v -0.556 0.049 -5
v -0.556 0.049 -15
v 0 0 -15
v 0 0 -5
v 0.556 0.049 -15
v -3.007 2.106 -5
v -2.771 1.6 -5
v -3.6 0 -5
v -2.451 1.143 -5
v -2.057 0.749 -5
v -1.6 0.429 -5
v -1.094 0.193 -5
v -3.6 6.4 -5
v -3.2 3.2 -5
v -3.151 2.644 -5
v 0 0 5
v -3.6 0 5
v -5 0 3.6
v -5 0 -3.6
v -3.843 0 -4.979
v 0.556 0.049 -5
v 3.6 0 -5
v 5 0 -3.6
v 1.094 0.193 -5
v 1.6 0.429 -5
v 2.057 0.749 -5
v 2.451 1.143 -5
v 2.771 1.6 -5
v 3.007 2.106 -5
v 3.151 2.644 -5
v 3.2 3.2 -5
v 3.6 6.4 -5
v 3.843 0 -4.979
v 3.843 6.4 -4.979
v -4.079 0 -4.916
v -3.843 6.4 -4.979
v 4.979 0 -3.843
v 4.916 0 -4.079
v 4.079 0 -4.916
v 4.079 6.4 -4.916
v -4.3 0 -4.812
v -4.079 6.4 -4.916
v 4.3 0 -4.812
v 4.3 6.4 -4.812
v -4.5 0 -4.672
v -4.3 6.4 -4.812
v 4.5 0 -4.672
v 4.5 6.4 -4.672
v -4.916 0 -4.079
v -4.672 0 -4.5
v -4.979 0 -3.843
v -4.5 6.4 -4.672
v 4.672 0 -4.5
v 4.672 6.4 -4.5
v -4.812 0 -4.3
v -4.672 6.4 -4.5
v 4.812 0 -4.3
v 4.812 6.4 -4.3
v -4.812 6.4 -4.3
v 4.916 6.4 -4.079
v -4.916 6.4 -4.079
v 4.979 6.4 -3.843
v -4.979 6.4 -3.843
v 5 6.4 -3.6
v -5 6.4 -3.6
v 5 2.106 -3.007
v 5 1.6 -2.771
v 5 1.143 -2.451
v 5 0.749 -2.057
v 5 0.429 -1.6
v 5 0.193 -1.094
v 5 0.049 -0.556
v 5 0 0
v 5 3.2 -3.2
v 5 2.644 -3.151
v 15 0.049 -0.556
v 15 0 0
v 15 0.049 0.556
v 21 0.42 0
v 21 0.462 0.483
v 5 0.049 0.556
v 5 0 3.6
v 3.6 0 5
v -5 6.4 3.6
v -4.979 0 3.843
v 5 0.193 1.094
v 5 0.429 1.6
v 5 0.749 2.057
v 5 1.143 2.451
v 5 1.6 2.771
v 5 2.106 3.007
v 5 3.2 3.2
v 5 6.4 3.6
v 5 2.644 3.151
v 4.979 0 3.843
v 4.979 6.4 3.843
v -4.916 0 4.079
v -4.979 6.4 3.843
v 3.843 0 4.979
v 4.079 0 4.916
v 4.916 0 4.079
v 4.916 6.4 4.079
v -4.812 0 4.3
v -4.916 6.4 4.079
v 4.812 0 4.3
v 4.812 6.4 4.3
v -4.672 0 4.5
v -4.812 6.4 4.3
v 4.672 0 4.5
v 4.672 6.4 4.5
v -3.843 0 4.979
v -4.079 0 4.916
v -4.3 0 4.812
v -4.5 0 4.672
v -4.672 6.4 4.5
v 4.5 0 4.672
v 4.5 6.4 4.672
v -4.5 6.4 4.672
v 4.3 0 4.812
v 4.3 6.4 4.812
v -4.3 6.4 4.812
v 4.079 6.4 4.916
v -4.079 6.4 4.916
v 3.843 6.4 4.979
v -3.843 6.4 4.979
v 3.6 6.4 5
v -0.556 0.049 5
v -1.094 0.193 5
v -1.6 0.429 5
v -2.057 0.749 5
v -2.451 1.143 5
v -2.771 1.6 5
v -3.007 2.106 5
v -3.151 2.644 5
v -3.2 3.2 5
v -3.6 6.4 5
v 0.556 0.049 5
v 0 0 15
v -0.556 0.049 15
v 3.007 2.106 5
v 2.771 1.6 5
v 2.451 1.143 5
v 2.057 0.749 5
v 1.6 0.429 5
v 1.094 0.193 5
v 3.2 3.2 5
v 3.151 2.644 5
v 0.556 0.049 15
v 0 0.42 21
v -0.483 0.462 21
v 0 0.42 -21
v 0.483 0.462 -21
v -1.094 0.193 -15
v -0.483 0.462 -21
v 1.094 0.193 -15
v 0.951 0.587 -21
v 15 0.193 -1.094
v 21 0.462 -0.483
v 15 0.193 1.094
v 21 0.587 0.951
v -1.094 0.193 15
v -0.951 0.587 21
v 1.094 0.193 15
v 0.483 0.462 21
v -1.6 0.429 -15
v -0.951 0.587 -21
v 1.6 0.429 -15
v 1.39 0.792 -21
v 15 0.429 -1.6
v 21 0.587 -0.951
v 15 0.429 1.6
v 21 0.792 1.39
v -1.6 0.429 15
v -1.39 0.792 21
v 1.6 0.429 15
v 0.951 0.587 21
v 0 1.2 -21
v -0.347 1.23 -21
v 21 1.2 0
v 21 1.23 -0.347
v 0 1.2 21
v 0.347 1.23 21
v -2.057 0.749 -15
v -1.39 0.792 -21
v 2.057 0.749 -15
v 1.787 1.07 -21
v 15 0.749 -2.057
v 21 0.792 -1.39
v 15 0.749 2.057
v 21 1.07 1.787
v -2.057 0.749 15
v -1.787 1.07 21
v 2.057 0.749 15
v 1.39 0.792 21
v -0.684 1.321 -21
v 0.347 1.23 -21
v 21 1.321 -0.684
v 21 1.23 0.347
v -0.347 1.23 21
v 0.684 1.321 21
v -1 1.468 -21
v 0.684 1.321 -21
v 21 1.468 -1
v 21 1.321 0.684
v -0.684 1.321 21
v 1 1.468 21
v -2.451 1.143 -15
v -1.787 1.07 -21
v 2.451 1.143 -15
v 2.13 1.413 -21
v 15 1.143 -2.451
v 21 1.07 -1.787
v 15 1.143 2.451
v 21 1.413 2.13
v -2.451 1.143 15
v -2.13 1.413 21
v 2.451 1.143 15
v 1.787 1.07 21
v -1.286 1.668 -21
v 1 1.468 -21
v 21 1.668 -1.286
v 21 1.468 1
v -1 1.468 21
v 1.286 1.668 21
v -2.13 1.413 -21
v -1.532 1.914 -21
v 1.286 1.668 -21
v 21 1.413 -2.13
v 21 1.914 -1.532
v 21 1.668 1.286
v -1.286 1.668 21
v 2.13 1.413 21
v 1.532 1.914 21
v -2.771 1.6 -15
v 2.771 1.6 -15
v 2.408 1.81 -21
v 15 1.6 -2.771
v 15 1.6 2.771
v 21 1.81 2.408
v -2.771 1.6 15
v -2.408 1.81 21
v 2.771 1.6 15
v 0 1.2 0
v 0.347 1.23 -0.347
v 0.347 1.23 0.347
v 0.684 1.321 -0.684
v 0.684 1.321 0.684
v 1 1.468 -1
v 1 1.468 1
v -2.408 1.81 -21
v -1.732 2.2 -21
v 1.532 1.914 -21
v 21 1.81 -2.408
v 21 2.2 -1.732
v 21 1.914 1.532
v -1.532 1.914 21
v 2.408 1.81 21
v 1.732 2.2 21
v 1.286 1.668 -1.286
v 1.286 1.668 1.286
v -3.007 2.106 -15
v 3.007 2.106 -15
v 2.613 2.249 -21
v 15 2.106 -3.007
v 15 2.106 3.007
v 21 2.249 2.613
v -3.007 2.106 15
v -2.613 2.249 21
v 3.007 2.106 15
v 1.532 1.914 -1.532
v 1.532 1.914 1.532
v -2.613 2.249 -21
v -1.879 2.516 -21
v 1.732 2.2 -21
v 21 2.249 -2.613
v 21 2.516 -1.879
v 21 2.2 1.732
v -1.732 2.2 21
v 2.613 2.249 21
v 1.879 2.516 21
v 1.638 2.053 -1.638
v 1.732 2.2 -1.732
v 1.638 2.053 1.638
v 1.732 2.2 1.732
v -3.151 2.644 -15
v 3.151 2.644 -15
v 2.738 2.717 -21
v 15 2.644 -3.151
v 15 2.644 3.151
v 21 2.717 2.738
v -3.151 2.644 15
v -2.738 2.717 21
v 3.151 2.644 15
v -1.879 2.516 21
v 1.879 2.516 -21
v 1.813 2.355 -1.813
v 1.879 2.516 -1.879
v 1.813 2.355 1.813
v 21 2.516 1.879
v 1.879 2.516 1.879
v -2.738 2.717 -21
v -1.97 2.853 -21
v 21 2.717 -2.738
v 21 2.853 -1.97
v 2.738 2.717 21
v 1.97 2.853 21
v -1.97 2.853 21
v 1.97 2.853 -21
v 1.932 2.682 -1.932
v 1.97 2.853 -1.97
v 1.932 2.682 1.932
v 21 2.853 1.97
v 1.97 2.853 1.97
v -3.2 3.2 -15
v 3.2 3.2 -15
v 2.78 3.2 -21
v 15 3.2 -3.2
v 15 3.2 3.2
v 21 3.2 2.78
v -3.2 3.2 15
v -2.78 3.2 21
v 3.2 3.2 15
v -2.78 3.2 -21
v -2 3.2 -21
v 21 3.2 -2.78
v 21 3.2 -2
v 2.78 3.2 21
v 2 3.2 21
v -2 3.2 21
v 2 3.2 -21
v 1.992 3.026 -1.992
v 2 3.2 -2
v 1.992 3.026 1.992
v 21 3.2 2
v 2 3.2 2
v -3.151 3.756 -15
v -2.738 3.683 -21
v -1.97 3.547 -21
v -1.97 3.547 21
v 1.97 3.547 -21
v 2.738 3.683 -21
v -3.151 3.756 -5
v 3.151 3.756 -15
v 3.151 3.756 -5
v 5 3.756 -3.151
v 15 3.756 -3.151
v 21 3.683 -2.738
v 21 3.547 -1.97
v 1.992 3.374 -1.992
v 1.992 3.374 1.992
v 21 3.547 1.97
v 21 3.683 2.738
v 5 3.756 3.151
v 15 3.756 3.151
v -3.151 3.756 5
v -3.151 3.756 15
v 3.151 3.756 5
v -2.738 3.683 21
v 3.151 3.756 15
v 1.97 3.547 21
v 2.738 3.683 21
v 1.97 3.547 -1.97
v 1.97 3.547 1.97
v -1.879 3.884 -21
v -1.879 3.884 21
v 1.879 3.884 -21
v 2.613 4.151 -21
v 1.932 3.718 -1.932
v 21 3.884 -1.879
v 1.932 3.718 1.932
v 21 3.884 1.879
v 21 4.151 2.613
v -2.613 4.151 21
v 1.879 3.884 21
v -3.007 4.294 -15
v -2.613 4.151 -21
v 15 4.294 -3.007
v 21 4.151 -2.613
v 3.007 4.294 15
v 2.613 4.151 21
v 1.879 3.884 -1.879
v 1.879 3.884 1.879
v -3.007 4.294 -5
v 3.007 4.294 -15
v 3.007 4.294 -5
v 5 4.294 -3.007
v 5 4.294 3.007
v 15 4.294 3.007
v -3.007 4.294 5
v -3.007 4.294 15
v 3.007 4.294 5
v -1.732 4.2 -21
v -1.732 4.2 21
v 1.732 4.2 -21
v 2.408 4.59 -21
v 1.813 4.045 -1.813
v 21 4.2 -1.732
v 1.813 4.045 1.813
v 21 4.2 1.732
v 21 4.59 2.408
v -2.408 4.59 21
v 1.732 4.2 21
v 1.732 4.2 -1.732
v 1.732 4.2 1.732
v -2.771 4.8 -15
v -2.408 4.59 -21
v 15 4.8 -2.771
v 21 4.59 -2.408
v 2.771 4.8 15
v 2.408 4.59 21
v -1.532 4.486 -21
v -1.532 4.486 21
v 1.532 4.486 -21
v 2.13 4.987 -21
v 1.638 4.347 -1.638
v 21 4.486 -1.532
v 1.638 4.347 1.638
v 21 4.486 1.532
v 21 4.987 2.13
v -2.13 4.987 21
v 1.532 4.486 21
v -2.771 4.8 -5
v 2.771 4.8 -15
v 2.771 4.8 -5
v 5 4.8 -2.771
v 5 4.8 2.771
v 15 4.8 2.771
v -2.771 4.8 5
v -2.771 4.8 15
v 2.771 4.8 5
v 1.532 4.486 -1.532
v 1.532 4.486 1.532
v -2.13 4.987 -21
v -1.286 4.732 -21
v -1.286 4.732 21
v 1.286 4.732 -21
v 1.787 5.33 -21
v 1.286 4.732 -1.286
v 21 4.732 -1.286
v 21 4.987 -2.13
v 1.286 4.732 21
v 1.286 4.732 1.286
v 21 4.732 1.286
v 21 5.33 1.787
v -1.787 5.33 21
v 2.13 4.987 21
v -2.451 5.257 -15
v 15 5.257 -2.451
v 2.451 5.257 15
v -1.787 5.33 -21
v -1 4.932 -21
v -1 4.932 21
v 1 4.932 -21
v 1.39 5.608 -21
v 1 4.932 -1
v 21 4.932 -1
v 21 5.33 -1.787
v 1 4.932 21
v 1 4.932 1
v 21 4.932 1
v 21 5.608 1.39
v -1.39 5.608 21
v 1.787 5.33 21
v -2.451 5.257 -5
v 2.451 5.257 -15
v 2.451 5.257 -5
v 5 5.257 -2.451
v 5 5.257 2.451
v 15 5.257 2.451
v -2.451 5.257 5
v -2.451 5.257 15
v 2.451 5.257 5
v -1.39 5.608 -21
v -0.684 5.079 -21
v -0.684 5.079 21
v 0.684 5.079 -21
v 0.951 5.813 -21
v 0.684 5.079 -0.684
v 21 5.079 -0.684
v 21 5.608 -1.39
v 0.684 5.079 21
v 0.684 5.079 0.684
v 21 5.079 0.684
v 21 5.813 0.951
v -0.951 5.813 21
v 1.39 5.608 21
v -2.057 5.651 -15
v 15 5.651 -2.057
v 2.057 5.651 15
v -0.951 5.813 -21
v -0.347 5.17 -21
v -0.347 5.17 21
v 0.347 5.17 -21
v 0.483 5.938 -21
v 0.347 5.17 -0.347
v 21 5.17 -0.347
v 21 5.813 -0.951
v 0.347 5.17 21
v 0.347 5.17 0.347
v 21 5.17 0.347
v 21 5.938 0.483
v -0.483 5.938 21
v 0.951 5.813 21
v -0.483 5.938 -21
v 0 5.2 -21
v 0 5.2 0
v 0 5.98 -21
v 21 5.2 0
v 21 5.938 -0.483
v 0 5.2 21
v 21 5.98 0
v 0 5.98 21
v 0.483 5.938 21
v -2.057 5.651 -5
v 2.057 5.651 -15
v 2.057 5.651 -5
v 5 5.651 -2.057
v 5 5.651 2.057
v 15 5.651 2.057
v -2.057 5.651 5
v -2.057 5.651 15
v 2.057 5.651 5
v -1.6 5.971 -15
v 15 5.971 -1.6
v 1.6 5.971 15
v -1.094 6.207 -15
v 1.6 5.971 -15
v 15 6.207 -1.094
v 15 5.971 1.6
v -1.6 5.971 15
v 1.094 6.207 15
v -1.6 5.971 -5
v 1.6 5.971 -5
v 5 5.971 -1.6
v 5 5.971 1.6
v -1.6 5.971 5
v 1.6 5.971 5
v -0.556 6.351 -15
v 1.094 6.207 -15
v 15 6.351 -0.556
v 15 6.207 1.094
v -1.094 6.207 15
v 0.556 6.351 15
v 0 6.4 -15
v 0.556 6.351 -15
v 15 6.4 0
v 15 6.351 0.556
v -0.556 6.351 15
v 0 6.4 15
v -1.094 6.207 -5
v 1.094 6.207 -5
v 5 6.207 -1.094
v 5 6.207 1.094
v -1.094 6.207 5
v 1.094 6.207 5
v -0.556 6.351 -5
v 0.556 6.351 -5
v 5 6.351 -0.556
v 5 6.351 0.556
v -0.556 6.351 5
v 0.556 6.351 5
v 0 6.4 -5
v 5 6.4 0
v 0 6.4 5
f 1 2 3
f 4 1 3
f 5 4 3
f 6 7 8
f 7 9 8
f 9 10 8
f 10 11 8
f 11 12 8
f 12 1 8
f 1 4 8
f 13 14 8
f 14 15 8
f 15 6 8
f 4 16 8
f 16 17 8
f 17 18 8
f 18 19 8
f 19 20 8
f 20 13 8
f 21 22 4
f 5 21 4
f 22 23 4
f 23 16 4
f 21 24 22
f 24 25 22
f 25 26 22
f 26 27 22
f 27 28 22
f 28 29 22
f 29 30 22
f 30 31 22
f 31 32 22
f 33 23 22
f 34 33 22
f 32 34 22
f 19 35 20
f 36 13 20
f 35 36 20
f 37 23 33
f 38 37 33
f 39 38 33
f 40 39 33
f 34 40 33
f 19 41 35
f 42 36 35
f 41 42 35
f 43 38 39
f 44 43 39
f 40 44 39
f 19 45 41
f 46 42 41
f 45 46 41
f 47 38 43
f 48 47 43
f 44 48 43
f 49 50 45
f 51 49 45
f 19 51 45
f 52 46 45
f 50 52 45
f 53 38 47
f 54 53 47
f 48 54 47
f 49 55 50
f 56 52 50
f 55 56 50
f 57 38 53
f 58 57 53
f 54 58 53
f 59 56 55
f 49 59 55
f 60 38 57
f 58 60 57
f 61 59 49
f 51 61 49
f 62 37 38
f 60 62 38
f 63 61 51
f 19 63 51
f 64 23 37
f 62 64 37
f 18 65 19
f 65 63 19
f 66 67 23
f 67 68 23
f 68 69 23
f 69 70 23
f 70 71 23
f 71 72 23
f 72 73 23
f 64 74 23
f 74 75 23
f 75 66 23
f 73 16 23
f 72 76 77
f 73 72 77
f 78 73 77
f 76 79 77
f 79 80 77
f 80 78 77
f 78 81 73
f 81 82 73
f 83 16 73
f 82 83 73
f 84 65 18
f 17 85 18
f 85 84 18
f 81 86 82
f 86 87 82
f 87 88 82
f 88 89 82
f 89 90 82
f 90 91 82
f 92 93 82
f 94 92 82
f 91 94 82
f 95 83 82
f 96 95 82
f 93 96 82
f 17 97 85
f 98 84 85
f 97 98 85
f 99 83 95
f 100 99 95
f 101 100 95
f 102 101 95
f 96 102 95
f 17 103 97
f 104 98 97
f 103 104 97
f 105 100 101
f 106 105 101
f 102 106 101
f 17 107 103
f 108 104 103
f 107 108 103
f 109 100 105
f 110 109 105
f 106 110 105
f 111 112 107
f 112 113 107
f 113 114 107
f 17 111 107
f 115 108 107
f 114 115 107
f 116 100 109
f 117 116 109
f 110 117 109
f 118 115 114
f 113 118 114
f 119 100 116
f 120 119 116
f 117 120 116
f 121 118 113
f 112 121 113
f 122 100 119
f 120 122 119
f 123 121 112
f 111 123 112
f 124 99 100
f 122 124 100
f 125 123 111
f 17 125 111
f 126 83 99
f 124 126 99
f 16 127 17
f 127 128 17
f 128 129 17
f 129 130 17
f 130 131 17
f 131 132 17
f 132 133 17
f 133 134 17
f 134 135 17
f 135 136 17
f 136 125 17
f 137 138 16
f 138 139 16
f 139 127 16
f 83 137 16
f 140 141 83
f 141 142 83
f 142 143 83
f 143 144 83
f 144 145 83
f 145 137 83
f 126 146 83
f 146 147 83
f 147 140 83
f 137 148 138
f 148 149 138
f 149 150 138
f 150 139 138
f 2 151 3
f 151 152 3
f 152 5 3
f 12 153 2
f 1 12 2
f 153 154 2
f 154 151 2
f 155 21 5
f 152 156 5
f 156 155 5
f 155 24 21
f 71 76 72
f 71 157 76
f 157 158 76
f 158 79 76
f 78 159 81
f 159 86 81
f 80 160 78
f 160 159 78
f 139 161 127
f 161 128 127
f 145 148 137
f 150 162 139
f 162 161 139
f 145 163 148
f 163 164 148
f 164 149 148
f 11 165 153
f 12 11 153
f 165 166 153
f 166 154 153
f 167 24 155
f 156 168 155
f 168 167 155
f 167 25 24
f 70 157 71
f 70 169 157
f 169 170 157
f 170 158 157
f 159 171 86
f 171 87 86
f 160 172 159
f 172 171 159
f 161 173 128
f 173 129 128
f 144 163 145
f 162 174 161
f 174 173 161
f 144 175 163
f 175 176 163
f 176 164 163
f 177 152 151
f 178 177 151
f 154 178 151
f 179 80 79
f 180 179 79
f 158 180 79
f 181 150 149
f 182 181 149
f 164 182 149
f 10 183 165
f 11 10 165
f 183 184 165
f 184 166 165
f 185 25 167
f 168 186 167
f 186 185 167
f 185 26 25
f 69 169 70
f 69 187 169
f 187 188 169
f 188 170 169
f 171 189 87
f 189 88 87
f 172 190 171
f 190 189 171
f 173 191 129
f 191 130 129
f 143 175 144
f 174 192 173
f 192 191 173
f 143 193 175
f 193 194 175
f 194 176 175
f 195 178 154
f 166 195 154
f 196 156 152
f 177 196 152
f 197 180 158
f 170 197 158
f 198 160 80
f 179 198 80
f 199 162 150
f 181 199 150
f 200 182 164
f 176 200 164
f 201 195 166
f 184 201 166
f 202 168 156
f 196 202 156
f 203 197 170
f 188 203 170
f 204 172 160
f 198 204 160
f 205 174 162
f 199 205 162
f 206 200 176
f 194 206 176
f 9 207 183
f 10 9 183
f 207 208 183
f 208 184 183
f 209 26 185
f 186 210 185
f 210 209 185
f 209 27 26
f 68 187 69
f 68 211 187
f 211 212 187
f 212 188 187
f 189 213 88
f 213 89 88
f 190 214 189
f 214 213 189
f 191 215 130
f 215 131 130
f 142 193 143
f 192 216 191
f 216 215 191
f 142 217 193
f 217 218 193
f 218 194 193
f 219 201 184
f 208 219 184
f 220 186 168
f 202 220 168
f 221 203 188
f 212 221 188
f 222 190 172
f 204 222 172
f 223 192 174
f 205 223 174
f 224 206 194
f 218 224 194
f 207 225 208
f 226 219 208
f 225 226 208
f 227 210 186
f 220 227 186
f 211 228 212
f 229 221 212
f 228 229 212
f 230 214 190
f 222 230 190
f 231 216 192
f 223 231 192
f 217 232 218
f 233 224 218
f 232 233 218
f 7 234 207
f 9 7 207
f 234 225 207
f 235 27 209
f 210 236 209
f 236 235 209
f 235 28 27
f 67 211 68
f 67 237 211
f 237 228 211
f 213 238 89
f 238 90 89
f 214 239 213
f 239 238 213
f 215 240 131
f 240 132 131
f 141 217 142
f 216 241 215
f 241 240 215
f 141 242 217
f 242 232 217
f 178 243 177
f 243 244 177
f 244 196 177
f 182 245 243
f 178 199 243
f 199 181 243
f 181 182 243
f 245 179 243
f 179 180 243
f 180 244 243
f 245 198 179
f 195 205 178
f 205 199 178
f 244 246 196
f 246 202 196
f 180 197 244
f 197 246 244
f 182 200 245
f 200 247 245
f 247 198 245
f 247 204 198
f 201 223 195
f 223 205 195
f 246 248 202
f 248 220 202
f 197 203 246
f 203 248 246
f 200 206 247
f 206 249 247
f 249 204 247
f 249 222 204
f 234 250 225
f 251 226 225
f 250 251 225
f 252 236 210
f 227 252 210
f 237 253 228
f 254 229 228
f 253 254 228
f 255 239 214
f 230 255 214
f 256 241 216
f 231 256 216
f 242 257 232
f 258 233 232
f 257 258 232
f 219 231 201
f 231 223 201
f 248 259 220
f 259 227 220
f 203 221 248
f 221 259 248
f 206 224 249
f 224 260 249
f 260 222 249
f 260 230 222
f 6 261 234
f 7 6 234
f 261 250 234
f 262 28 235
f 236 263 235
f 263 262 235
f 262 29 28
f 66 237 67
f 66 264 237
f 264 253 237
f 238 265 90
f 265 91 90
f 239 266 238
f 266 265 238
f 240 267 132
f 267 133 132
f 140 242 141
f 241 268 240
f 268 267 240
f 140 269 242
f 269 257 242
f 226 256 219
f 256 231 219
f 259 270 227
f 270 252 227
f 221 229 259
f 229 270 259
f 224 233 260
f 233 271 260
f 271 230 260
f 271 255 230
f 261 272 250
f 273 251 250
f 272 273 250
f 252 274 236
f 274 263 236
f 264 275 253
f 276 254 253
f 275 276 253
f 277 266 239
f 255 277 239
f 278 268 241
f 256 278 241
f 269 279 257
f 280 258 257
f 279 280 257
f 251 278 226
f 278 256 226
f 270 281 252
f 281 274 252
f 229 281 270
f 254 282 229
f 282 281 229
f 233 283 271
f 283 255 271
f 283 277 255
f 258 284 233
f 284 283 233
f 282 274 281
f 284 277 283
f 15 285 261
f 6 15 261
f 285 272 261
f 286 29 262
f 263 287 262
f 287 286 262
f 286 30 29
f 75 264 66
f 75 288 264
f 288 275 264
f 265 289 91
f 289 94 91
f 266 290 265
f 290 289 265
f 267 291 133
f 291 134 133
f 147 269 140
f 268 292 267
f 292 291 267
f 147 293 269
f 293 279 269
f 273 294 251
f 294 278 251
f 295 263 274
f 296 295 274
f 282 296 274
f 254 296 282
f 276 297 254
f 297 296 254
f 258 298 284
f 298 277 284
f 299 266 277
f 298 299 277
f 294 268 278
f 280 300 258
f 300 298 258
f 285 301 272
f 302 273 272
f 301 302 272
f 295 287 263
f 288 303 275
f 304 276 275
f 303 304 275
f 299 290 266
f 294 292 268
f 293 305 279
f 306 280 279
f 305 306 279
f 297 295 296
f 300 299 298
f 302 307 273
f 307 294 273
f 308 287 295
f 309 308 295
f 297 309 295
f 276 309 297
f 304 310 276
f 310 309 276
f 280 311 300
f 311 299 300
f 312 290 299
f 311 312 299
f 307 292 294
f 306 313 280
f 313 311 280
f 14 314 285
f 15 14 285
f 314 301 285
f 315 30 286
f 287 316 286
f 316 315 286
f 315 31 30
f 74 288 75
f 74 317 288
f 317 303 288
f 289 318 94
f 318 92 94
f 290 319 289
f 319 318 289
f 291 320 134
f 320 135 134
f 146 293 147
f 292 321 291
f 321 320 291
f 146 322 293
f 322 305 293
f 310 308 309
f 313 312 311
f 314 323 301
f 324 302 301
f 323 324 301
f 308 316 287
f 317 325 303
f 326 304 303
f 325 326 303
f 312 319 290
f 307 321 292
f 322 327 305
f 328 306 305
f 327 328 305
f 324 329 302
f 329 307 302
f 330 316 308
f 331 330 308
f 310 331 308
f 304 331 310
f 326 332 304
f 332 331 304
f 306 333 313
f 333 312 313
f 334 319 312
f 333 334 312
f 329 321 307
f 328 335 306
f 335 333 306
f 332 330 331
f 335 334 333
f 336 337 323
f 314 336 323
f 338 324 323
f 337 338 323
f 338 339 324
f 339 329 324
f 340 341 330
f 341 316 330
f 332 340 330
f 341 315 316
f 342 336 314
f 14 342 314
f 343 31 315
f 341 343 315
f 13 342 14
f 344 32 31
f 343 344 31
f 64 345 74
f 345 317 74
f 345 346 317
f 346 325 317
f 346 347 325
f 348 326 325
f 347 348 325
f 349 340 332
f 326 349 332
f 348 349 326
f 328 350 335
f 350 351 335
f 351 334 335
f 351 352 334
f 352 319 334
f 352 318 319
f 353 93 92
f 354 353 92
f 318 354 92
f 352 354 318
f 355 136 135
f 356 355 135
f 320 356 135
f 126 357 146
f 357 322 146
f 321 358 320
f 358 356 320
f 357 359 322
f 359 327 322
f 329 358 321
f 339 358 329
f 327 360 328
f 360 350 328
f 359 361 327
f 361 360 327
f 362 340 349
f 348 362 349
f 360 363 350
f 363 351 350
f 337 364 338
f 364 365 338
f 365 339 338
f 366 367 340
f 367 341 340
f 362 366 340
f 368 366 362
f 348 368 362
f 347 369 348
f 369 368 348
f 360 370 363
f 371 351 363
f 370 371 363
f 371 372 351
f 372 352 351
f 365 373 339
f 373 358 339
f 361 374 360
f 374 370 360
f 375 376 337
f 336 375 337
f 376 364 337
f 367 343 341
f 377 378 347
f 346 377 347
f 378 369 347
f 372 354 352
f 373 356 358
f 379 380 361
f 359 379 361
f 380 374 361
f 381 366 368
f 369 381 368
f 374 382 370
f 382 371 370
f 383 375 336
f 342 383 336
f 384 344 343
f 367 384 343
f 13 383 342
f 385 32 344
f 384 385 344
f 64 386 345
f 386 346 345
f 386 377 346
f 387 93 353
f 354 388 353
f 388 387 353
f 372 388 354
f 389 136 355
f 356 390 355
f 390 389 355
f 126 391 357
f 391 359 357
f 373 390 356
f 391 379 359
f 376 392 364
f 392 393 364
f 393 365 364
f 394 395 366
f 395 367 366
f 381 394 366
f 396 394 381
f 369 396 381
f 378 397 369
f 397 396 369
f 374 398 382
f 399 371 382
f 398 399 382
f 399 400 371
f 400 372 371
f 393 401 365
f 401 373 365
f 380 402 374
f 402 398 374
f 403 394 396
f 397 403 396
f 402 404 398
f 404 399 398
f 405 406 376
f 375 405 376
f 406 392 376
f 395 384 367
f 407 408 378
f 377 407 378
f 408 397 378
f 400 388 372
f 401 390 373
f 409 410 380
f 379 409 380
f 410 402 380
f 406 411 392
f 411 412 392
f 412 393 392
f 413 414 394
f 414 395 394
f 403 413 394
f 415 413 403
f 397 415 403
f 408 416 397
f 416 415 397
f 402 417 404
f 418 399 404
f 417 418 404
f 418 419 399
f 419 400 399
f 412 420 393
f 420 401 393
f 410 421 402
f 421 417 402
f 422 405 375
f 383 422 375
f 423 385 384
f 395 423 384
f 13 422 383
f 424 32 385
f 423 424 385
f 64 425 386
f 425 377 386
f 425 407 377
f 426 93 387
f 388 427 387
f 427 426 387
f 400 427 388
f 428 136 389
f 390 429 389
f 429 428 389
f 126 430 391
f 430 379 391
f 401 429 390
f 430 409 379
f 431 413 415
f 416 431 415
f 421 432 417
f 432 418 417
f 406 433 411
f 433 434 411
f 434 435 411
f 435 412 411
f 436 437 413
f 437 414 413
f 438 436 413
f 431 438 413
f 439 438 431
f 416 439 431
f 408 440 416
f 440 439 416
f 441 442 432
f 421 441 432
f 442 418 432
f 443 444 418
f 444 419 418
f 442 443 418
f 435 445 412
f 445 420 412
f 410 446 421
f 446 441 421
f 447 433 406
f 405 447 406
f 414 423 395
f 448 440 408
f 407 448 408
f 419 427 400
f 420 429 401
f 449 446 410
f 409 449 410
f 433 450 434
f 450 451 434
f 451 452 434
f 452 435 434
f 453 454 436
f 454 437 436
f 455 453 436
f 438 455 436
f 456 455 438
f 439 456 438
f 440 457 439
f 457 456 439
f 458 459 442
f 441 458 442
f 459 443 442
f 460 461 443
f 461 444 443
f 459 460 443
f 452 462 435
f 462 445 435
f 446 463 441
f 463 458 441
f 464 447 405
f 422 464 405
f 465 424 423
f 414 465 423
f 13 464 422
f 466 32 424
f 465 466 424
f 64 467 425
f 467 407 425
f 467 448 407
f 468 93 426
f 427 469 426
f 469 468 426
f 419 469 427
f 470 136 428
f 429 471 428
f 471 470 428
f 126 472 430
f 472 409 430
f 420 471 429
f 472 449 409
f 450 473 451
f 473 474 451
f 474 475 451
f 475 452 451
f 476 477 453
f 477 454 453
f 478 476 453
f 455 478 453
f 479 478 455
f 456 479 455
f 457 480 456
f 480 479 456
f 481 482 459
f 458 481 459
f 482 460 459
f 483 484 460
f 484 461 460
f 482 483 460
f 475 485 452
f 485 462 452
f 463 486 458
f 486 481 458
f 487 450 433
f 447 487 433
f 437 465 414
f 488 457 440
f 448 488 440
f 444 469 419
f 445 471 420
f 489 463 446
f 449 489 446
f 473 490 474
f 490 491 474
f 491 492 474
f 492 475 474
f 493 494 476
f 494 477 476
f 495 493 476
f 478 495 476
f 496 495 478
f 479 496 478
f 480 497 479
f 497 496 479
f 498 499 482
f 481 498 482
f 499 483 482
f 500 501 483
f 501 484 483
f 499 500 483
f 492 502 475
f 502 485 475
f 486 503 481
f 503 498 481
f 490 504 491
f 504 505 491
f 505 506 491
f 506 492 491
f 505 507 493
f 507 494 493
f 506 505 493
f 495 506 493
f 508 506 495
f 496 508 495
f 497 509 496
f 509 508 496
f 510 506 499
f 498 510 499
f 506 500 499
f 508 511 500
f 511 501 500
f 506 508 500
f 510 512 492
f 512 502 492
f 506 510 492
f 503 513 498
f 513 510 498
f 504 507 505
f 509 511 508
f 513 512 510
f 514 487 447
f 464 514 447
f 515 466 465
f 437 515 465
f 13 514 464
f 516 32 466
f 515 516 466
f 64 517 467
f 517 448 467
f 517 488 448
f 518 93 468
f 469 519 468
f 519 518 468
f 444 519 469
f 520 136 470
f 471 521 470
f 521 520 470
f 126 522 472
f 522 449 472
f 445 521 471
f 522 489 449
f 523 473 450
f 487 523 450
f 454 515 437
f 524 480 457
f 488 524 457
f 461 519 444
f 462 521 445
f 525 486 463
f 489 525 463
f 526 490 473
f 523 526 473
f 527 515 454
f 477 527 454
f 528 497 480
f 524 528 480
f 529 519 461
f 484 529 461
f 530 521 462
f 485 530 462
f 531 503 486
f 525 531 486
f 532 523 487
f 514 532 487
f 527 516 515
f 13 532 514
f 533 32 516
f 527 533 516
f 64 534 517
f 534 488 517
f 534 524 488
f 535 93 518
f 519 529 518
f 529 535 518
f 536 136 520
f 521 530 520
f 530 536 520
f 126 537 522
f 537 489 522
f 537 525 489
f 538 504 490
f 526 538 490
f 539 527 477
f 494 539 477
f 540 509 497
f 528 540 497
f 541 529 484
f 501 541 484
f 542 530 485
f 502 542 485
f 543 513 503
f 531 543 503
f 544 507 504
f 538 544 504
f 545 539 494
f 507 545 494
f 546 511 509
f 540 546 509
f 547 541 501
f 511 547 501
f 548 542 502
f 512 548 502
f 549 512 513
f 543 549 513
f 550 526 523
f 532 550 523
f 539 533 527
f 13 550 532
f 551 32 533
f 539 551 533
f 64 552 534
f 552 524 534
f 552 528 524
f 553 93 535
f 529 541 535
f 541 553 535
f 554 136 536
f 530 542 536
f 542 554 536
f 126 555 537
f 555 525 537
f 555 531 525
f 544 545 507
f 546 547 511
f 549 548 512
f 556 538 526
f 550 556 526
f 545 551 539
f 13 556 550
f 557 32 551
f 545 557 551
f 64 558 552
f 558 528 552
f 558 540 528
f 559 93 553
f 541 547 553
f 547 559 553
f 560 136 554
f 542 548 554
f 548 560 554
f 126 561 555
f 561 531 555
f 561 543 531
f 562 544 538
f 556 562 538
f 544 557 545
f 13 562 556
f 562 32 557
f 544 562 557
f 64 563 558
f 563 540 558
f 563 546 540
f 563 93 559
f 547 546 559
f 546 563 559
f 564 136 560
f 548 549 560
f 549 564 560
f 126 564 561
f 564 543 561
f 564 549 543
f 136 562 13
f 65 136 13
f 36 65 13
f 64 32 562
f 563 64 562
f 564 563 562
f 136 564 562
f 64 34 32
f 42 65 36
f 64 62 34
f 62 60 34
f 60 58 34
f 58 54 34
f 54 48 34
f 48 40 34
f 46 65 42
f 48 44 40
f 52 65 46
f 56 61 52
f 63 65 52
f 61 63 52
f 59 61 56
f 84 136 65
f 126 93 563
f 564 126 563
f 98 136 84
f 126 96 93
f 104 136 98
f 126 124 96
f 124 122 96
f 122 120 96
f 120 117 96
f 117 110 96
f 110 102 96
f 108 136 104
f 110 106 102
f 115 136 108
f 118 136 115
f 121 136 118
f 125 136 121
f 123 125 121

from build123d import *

# Parameters (mm, degrees)
SKETCH1_W               = 10
SKETCH1_H               = 10
BOSS_EXTRUDE1_DEPTH     = 6.4
SKETCH2_R               = 3.2
BOSS_EXTRUDE2_DEPTH     = 10
SKETCH4_R               = 3.2
BOSS_EXTRUDE3_DEPTH     = 10
SKETCH8_R               = 3.2
BOSS_EXTRUDE4_DEPTH     = 6
BOSS_EXTRUDE4_TAPER     = 4
SKETCH10_R              = 3.2
BOSS_EXTRUDE5_DEPTH     = 6
BOSS_EXTRUDE5_TAPER     = 4
FILLET1_R               = 1.4
SKETCH11_R              = 2
CUT_EXTRUDE5_DEPTH      = 48.391560488
CUT_EXTRUDE6_REACH      = 36.029
CUT_EXTRUDE6_END_RADIUS = 2
SKETCH9_R               = 2


with BuildPart() as part:
    # Sketch1 → Boss-Extrude1 (new body)
    with BuildSketch(Plane(origin=(0, 0, 0), x_dir=(1, 0, 0), z_dir=(0, 1, 0))):
        Rectangle(SKETCH1_W, SKETCH1_H)
    extrude(amount=BOSS_EXTRUDE1_DEPTH)

    # Sketch2 → Boss-Extrude2 (add)
    with BuildSketch(Plane.XY.offset(5)):
        with Locations(Location((0, 3.2, 0), (0, 0, 270))):
            Circle(SKETCH2_R)
    boss_extrude2 = extrude(amount=BOSS_EXTRUDE2_DEPTH)

    # Sketch4 → Boss-Extrude3 (add)
    with BuildSketch(Plane(origin=(5, 0, 0), x_dir=(0, 0, -1), z_dir=(1, 0, 0))):
        with Locations(Location((0, 3.2, 0), (0, 0, 270))):
            Circle(SKETCH4_R)
    extrude(amount=BOSS_EXTRUDE3_DEPTH)

    # Sketch8 → Boss-Extrude4 (add)
    with BuildSketch(Plane(origin=(15, 0, 0), x_dir=(0, 0, -1), z_dir=(1, 0, 0))):
        with Locations(Location((0, 3.2, 0), (0, 0, 270))):
            Circle(SKETCH8_R)
    extrude(amount=BOSS_EXTRUDE4_DEPTH, taper=BOSS_EXTRUDE4_TAPER)

    # Sketch10 → Boss-Extrude5 (add)
    with BuildSketch(Plane.XY.offset(15)):
        with Locations(Location((0, 3.2, 0), (0, 0, 270))):
            Circle(SKETCH10_R)
    boss_extrude5 = extrude(amount=BOSS_EXTRUDE5_DEPTH, taper=BOSS_EXTRUDE5_TAPER)

    # Mirror2: Boss-Extrude2, Boss-Extrude5 across plane
    add(boss_extrude2.mirror(Plane.XY))
    add(boss_extrude5.mirror(Plane.XY))

    # Fillet1
    fillet1_edges = [part.edges().sort_by_distance(p)[0] for p in [
        (-5, 3.2, -5),
        (5, 3.2, -5),
        (5, 3.2, 5),
        (-5, 3.2, 5),
    ]]
    fillet(fillet1_edges, radius=FILLET1_R)

    # Sketch11 → Cut-Extrude5 (cut, through all)
    with BuildSketch(Plane.XY.offset(21)):
        with Locations((0, 3.2)):
            Circle(SKETCH11_R)
    extrude(amount=-CUT_EXTRUDE5_DEPTH, mode=Mode.SUBTRACT)

    # Cut-Extrude6: up to this cylinder (the profile starts outside it)
    cut_extrude6_end = Plane(origin=(0, 3.2, 0), z_dir=(0, 0, 1)) * Cylinder(CUT_EXTRUDE6_END_RADIUS, 77.058, mode=Mode.PRIVATE)
    # Sketch9 → Cut-Extrude6 (cut, up to the surface)
    with BuildSketch(Plane(origin=(21, 0, 0), x_dir=(0, 0, -1), z_dir=(1, 0, 0)), mode=Mode.PRIVATE) as cut_extrude6_sk1:
        with Locations((0, 3.2)):
            Circle(SKETCH9_R)
    cut_extrude6_tool1 = extrude(cut_extrude6_sk1.sketch, amount=-CUT_EXTRUDE6_REACH, mode=Mode.PRIVATE) - cut_extrude6_end
    add(cut_extrude6_tool1.solids().sort_by_distance((21, 3.2, 0))[0], mode=Mode.SUBTRACT)


solid = part.part
